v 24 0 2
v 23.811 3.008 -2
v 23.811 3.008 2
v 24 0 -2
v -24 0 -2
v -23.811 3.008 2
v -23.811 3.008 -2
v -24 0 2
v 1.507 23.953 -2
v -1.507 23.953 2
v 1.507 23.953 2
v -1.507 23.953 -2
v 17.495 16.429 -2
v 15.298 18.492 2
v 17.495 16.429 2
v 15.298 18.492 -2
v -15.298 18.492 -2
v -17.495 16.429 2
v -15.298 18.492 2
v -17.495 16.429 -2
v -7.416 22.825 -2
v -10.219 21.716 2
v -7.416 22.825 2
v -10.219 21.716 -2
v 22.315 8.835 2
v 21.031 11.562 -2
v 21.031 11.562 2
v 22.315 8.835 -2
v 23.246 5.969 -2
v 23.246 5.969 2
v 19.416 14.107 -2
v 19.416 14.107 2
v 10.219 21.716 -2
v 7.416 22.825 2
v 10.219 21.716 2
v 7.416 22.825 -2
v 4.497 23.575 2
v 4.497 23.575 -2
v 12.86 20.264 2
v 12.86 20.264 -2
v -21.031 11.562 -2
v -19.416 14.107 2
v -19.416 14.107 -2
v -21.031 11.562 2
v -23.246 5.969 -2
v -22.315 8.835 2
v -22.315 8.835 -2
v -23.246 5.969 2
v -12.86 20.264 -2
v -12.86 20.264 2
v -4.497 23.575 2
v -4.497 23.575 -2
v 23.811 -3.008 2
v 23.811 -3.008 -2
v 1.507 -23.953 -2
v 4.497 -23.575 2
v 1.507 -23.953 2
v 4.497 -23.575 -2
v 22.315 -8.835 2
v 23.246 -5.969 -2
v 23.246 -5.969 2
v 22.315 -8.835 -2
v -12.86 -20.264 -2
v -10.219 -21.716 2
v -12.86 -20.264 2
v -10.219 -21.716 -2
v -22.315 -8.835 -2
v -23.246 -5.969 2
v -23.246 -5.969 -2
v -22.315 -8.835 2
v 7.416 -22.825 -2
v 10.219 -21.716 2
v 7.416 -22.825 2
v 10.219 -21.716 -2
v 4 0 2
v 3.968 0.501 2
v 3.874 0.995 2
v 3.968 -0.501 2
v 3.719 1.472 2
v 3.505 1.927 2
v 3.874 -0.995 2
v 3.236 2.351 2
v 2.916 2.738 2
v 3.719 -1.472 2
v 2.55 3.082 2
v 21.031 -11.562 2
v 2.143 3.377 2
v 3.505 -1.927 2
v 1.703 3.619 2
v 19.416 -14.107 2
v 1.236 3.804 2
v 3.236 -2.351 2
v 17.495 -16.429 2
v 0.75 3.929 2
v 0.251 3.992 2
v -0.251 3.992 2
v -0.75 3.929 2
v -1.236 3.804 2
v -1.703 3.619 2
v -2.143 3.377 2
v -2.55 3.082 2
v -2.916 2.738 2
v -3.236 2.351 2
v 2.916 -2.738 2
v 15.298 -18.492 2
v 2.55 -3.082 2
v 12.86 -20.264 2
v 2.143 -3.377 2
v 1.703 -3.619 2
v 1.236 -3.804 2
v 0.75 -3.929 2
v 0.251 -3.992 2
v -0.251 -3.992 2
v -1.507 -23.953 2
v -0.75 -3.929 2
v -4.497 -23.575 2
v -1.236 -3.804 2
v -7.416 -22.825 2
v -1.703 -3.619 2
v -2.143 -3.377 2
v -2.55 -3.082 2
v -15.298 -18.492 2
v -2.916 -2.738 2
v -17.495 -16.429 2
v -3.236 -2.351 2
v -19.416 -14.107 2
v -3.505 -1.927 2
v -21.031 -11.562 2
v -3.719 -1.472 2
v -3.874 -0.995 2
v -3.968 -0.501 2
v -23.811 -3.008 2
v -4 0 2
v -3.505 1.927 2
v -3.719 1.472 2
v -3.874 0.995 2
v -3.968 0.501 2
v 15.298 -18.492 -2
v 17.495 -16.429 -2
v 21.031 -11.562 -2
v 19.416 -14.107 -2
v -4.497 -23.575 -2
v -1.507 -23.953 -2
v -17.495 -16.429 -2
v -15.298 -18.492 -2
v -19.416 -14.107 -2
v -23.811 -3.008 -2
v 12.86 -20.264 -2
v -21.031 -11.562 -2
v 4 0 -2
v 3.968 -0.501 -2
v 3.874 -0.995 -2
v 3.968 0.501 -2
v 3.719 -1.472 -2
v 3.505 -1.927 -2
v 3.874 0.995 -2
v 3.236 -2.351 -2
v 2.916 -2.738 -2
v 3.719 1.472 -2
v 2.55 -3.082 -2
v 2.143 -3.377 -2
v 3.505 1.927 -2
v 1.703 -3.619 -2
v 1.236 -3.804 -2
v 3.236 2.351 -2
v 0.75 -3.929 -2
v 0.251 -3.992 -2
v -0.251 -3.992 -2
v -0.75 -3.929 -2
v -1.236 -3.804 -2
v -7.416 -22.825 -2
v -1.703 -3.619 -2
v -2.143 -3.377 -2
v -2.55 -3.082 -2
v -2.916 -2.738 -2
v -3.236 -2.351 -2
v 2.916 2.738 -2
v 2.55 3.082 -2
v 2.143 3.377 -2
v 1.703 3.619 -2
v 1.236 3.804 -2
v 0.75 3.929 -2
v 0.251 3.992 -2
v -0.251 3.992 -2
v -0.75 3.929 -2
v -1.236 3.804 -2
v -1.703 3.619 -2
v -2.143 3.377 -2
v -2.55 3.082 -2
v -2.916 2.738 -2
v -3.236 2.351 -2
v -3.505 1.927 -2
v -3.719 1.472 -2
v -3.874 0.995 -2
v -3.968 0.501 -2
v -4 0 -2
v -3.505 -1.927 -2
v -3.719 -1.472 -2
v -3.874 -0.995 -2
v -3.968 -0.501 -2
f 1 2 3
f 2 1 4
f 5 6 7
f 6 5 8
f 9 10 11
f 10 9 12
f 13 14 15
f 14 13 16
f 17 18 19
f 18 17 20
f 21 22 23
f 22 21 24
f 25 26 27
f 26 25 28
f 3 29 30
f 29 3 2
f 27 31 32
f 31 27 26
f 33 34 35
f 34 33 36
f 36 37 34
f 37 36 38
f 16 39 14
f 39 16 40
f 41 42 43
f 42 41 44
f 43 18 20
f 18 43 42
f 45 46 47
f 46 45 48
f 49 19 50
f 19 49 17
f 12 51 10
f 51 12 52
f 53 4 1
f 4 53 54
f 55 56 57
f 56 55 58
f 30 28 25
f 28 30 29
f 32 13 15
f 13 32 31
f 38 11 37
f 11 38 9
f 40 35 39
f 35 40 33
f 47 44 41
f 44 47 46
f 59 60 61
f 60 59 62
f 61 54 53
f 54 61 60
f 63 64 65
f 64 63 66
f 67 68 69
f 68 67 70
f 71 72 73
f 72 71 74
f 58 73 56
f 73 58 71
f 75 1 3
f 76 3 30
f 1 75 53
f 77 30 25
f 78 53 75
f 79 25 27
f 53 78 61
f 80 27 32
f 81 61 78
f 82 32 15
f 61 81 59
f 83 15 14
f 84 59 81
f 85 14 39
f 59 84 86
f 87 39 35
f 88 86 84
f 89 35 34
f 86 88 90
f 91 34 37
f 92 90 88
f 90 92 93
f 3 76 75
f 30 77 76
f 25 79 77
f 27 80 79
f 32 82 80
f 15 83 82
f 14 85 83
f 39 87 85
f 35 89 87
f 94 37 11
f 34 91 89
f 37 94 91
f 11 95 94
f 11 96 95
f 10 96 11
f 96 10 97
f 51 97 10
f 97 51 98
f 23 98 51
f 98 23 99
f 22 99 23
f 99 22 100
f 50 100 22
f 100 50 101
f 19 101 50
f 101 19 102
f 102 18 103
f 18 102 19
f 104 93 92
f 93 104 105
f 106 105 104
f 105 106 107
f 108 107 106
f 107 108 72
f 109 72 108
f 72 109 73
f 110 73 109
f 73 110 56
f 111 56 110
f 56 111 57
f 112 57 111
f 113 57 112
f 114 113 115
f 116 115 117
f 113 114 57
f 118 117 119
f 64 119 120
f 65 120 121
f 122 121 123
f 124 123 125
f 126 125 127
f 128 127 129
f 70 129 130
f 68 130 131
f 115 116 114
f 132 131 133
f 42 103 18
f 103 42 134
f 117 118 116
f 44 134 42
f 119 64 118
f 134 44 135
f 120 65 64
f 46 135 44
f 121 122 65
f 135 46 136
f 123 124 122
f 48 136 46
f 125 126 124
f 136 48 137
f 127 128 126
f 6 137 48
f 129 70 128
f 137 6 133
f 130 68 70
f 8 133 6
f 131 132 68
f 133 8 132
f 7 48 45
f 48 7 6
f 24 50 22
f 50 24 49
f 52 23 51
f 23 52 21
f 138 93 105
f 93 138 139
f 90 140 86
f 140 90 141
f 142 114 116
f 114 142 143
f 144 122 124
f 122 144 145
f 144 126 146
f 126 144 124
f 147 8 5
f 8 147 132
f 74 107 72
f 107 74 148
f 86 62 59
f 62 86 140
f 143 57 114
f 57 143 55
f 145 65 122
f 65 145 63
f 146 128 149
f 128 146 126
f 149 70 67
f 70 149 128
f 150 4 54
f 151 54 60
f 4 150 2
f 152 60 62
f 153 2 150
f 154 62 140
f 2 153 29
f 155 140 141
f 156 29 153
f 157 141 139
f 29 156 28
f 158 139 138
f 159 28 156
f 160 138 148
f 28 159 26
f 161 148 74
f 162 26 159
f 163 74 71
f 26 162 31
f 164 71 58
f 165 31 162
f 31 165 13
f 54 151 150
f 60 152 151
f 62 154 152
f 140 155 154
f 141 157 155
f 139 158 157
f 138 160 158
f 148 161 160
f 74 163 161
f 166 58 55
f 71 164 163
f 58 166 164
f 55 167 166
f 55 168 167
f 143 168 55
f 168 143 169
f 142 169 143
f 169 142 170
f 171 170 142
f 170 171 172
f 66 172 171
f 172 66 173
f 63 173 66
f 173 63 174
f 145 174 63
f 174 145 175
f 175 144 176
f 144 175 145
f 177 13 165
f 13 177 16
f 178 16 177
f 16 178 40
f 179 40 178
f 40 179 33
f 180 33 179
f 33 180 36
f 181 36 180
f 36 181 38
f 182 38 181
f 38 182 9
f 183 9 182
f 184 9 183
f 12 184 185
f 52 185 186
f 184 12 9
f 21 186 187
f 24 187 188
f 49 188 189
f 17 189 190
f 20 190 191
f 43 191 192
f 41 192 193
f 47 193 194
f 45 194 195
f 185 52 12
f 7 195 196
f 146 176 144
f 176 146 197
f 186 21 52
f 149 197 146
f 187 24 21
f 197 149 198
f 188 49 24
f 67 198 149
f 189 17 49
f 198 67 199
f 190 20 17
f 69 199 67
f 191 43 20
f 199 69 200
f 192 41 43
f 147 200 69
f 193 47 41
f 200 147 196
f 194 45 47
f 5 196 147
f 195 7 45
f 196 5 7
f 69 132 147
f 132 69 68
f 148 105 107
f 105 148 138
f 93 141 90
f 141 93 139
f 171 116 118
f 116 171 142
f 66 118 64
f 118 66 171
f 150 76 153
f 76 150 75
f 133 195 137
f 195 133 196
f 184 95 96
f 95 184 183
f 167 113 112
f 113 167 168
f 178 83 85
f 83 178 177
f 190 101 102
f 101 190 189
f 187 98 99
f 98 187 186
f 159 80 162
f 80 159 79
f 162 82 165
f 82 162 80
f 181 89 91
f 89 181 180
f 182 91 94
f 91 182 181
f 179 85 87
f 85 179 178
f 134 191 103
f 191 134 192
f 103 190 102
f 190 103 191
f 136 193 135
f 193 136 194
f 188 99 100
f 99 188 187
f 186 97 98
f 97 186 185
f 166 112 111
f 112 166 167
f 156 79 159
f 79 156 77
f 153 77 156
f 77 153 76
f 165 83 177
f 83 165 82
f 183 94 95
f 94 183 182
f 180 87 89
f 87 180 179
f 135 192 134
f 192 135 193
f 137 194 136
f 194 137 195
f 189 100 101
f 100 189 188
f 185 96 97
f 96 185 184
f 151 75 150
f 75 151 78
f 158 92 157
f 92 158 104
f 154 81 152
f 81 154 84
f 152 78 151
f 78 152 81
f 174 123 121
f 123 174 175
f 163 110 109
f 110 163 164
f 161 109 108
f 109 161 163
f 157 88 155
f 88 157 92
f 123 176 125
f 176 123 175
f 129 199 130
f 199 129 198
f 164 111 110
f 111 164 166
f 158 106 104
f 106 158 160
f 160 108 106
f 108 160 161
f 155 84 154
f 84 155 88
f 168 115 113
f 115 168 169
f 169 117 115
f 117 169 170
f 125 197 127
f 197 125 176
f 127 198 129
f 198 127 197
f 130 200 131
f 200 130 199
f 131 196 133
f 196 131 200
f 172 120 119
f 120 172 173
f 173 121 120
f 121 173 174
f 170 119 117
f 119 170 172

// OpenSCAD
$fn = 50;


difference() {
	union() {
		translate(v = [0, 0, -2.0000000000]) {
			cylinder(h = 4, r = 24.0000000000);
		}
	}
	union() {
		translate(v = [0, 0, -100.0000000000]) {
			cylinder(h = 200, r = 4.0000000000);
		}
	}
}
